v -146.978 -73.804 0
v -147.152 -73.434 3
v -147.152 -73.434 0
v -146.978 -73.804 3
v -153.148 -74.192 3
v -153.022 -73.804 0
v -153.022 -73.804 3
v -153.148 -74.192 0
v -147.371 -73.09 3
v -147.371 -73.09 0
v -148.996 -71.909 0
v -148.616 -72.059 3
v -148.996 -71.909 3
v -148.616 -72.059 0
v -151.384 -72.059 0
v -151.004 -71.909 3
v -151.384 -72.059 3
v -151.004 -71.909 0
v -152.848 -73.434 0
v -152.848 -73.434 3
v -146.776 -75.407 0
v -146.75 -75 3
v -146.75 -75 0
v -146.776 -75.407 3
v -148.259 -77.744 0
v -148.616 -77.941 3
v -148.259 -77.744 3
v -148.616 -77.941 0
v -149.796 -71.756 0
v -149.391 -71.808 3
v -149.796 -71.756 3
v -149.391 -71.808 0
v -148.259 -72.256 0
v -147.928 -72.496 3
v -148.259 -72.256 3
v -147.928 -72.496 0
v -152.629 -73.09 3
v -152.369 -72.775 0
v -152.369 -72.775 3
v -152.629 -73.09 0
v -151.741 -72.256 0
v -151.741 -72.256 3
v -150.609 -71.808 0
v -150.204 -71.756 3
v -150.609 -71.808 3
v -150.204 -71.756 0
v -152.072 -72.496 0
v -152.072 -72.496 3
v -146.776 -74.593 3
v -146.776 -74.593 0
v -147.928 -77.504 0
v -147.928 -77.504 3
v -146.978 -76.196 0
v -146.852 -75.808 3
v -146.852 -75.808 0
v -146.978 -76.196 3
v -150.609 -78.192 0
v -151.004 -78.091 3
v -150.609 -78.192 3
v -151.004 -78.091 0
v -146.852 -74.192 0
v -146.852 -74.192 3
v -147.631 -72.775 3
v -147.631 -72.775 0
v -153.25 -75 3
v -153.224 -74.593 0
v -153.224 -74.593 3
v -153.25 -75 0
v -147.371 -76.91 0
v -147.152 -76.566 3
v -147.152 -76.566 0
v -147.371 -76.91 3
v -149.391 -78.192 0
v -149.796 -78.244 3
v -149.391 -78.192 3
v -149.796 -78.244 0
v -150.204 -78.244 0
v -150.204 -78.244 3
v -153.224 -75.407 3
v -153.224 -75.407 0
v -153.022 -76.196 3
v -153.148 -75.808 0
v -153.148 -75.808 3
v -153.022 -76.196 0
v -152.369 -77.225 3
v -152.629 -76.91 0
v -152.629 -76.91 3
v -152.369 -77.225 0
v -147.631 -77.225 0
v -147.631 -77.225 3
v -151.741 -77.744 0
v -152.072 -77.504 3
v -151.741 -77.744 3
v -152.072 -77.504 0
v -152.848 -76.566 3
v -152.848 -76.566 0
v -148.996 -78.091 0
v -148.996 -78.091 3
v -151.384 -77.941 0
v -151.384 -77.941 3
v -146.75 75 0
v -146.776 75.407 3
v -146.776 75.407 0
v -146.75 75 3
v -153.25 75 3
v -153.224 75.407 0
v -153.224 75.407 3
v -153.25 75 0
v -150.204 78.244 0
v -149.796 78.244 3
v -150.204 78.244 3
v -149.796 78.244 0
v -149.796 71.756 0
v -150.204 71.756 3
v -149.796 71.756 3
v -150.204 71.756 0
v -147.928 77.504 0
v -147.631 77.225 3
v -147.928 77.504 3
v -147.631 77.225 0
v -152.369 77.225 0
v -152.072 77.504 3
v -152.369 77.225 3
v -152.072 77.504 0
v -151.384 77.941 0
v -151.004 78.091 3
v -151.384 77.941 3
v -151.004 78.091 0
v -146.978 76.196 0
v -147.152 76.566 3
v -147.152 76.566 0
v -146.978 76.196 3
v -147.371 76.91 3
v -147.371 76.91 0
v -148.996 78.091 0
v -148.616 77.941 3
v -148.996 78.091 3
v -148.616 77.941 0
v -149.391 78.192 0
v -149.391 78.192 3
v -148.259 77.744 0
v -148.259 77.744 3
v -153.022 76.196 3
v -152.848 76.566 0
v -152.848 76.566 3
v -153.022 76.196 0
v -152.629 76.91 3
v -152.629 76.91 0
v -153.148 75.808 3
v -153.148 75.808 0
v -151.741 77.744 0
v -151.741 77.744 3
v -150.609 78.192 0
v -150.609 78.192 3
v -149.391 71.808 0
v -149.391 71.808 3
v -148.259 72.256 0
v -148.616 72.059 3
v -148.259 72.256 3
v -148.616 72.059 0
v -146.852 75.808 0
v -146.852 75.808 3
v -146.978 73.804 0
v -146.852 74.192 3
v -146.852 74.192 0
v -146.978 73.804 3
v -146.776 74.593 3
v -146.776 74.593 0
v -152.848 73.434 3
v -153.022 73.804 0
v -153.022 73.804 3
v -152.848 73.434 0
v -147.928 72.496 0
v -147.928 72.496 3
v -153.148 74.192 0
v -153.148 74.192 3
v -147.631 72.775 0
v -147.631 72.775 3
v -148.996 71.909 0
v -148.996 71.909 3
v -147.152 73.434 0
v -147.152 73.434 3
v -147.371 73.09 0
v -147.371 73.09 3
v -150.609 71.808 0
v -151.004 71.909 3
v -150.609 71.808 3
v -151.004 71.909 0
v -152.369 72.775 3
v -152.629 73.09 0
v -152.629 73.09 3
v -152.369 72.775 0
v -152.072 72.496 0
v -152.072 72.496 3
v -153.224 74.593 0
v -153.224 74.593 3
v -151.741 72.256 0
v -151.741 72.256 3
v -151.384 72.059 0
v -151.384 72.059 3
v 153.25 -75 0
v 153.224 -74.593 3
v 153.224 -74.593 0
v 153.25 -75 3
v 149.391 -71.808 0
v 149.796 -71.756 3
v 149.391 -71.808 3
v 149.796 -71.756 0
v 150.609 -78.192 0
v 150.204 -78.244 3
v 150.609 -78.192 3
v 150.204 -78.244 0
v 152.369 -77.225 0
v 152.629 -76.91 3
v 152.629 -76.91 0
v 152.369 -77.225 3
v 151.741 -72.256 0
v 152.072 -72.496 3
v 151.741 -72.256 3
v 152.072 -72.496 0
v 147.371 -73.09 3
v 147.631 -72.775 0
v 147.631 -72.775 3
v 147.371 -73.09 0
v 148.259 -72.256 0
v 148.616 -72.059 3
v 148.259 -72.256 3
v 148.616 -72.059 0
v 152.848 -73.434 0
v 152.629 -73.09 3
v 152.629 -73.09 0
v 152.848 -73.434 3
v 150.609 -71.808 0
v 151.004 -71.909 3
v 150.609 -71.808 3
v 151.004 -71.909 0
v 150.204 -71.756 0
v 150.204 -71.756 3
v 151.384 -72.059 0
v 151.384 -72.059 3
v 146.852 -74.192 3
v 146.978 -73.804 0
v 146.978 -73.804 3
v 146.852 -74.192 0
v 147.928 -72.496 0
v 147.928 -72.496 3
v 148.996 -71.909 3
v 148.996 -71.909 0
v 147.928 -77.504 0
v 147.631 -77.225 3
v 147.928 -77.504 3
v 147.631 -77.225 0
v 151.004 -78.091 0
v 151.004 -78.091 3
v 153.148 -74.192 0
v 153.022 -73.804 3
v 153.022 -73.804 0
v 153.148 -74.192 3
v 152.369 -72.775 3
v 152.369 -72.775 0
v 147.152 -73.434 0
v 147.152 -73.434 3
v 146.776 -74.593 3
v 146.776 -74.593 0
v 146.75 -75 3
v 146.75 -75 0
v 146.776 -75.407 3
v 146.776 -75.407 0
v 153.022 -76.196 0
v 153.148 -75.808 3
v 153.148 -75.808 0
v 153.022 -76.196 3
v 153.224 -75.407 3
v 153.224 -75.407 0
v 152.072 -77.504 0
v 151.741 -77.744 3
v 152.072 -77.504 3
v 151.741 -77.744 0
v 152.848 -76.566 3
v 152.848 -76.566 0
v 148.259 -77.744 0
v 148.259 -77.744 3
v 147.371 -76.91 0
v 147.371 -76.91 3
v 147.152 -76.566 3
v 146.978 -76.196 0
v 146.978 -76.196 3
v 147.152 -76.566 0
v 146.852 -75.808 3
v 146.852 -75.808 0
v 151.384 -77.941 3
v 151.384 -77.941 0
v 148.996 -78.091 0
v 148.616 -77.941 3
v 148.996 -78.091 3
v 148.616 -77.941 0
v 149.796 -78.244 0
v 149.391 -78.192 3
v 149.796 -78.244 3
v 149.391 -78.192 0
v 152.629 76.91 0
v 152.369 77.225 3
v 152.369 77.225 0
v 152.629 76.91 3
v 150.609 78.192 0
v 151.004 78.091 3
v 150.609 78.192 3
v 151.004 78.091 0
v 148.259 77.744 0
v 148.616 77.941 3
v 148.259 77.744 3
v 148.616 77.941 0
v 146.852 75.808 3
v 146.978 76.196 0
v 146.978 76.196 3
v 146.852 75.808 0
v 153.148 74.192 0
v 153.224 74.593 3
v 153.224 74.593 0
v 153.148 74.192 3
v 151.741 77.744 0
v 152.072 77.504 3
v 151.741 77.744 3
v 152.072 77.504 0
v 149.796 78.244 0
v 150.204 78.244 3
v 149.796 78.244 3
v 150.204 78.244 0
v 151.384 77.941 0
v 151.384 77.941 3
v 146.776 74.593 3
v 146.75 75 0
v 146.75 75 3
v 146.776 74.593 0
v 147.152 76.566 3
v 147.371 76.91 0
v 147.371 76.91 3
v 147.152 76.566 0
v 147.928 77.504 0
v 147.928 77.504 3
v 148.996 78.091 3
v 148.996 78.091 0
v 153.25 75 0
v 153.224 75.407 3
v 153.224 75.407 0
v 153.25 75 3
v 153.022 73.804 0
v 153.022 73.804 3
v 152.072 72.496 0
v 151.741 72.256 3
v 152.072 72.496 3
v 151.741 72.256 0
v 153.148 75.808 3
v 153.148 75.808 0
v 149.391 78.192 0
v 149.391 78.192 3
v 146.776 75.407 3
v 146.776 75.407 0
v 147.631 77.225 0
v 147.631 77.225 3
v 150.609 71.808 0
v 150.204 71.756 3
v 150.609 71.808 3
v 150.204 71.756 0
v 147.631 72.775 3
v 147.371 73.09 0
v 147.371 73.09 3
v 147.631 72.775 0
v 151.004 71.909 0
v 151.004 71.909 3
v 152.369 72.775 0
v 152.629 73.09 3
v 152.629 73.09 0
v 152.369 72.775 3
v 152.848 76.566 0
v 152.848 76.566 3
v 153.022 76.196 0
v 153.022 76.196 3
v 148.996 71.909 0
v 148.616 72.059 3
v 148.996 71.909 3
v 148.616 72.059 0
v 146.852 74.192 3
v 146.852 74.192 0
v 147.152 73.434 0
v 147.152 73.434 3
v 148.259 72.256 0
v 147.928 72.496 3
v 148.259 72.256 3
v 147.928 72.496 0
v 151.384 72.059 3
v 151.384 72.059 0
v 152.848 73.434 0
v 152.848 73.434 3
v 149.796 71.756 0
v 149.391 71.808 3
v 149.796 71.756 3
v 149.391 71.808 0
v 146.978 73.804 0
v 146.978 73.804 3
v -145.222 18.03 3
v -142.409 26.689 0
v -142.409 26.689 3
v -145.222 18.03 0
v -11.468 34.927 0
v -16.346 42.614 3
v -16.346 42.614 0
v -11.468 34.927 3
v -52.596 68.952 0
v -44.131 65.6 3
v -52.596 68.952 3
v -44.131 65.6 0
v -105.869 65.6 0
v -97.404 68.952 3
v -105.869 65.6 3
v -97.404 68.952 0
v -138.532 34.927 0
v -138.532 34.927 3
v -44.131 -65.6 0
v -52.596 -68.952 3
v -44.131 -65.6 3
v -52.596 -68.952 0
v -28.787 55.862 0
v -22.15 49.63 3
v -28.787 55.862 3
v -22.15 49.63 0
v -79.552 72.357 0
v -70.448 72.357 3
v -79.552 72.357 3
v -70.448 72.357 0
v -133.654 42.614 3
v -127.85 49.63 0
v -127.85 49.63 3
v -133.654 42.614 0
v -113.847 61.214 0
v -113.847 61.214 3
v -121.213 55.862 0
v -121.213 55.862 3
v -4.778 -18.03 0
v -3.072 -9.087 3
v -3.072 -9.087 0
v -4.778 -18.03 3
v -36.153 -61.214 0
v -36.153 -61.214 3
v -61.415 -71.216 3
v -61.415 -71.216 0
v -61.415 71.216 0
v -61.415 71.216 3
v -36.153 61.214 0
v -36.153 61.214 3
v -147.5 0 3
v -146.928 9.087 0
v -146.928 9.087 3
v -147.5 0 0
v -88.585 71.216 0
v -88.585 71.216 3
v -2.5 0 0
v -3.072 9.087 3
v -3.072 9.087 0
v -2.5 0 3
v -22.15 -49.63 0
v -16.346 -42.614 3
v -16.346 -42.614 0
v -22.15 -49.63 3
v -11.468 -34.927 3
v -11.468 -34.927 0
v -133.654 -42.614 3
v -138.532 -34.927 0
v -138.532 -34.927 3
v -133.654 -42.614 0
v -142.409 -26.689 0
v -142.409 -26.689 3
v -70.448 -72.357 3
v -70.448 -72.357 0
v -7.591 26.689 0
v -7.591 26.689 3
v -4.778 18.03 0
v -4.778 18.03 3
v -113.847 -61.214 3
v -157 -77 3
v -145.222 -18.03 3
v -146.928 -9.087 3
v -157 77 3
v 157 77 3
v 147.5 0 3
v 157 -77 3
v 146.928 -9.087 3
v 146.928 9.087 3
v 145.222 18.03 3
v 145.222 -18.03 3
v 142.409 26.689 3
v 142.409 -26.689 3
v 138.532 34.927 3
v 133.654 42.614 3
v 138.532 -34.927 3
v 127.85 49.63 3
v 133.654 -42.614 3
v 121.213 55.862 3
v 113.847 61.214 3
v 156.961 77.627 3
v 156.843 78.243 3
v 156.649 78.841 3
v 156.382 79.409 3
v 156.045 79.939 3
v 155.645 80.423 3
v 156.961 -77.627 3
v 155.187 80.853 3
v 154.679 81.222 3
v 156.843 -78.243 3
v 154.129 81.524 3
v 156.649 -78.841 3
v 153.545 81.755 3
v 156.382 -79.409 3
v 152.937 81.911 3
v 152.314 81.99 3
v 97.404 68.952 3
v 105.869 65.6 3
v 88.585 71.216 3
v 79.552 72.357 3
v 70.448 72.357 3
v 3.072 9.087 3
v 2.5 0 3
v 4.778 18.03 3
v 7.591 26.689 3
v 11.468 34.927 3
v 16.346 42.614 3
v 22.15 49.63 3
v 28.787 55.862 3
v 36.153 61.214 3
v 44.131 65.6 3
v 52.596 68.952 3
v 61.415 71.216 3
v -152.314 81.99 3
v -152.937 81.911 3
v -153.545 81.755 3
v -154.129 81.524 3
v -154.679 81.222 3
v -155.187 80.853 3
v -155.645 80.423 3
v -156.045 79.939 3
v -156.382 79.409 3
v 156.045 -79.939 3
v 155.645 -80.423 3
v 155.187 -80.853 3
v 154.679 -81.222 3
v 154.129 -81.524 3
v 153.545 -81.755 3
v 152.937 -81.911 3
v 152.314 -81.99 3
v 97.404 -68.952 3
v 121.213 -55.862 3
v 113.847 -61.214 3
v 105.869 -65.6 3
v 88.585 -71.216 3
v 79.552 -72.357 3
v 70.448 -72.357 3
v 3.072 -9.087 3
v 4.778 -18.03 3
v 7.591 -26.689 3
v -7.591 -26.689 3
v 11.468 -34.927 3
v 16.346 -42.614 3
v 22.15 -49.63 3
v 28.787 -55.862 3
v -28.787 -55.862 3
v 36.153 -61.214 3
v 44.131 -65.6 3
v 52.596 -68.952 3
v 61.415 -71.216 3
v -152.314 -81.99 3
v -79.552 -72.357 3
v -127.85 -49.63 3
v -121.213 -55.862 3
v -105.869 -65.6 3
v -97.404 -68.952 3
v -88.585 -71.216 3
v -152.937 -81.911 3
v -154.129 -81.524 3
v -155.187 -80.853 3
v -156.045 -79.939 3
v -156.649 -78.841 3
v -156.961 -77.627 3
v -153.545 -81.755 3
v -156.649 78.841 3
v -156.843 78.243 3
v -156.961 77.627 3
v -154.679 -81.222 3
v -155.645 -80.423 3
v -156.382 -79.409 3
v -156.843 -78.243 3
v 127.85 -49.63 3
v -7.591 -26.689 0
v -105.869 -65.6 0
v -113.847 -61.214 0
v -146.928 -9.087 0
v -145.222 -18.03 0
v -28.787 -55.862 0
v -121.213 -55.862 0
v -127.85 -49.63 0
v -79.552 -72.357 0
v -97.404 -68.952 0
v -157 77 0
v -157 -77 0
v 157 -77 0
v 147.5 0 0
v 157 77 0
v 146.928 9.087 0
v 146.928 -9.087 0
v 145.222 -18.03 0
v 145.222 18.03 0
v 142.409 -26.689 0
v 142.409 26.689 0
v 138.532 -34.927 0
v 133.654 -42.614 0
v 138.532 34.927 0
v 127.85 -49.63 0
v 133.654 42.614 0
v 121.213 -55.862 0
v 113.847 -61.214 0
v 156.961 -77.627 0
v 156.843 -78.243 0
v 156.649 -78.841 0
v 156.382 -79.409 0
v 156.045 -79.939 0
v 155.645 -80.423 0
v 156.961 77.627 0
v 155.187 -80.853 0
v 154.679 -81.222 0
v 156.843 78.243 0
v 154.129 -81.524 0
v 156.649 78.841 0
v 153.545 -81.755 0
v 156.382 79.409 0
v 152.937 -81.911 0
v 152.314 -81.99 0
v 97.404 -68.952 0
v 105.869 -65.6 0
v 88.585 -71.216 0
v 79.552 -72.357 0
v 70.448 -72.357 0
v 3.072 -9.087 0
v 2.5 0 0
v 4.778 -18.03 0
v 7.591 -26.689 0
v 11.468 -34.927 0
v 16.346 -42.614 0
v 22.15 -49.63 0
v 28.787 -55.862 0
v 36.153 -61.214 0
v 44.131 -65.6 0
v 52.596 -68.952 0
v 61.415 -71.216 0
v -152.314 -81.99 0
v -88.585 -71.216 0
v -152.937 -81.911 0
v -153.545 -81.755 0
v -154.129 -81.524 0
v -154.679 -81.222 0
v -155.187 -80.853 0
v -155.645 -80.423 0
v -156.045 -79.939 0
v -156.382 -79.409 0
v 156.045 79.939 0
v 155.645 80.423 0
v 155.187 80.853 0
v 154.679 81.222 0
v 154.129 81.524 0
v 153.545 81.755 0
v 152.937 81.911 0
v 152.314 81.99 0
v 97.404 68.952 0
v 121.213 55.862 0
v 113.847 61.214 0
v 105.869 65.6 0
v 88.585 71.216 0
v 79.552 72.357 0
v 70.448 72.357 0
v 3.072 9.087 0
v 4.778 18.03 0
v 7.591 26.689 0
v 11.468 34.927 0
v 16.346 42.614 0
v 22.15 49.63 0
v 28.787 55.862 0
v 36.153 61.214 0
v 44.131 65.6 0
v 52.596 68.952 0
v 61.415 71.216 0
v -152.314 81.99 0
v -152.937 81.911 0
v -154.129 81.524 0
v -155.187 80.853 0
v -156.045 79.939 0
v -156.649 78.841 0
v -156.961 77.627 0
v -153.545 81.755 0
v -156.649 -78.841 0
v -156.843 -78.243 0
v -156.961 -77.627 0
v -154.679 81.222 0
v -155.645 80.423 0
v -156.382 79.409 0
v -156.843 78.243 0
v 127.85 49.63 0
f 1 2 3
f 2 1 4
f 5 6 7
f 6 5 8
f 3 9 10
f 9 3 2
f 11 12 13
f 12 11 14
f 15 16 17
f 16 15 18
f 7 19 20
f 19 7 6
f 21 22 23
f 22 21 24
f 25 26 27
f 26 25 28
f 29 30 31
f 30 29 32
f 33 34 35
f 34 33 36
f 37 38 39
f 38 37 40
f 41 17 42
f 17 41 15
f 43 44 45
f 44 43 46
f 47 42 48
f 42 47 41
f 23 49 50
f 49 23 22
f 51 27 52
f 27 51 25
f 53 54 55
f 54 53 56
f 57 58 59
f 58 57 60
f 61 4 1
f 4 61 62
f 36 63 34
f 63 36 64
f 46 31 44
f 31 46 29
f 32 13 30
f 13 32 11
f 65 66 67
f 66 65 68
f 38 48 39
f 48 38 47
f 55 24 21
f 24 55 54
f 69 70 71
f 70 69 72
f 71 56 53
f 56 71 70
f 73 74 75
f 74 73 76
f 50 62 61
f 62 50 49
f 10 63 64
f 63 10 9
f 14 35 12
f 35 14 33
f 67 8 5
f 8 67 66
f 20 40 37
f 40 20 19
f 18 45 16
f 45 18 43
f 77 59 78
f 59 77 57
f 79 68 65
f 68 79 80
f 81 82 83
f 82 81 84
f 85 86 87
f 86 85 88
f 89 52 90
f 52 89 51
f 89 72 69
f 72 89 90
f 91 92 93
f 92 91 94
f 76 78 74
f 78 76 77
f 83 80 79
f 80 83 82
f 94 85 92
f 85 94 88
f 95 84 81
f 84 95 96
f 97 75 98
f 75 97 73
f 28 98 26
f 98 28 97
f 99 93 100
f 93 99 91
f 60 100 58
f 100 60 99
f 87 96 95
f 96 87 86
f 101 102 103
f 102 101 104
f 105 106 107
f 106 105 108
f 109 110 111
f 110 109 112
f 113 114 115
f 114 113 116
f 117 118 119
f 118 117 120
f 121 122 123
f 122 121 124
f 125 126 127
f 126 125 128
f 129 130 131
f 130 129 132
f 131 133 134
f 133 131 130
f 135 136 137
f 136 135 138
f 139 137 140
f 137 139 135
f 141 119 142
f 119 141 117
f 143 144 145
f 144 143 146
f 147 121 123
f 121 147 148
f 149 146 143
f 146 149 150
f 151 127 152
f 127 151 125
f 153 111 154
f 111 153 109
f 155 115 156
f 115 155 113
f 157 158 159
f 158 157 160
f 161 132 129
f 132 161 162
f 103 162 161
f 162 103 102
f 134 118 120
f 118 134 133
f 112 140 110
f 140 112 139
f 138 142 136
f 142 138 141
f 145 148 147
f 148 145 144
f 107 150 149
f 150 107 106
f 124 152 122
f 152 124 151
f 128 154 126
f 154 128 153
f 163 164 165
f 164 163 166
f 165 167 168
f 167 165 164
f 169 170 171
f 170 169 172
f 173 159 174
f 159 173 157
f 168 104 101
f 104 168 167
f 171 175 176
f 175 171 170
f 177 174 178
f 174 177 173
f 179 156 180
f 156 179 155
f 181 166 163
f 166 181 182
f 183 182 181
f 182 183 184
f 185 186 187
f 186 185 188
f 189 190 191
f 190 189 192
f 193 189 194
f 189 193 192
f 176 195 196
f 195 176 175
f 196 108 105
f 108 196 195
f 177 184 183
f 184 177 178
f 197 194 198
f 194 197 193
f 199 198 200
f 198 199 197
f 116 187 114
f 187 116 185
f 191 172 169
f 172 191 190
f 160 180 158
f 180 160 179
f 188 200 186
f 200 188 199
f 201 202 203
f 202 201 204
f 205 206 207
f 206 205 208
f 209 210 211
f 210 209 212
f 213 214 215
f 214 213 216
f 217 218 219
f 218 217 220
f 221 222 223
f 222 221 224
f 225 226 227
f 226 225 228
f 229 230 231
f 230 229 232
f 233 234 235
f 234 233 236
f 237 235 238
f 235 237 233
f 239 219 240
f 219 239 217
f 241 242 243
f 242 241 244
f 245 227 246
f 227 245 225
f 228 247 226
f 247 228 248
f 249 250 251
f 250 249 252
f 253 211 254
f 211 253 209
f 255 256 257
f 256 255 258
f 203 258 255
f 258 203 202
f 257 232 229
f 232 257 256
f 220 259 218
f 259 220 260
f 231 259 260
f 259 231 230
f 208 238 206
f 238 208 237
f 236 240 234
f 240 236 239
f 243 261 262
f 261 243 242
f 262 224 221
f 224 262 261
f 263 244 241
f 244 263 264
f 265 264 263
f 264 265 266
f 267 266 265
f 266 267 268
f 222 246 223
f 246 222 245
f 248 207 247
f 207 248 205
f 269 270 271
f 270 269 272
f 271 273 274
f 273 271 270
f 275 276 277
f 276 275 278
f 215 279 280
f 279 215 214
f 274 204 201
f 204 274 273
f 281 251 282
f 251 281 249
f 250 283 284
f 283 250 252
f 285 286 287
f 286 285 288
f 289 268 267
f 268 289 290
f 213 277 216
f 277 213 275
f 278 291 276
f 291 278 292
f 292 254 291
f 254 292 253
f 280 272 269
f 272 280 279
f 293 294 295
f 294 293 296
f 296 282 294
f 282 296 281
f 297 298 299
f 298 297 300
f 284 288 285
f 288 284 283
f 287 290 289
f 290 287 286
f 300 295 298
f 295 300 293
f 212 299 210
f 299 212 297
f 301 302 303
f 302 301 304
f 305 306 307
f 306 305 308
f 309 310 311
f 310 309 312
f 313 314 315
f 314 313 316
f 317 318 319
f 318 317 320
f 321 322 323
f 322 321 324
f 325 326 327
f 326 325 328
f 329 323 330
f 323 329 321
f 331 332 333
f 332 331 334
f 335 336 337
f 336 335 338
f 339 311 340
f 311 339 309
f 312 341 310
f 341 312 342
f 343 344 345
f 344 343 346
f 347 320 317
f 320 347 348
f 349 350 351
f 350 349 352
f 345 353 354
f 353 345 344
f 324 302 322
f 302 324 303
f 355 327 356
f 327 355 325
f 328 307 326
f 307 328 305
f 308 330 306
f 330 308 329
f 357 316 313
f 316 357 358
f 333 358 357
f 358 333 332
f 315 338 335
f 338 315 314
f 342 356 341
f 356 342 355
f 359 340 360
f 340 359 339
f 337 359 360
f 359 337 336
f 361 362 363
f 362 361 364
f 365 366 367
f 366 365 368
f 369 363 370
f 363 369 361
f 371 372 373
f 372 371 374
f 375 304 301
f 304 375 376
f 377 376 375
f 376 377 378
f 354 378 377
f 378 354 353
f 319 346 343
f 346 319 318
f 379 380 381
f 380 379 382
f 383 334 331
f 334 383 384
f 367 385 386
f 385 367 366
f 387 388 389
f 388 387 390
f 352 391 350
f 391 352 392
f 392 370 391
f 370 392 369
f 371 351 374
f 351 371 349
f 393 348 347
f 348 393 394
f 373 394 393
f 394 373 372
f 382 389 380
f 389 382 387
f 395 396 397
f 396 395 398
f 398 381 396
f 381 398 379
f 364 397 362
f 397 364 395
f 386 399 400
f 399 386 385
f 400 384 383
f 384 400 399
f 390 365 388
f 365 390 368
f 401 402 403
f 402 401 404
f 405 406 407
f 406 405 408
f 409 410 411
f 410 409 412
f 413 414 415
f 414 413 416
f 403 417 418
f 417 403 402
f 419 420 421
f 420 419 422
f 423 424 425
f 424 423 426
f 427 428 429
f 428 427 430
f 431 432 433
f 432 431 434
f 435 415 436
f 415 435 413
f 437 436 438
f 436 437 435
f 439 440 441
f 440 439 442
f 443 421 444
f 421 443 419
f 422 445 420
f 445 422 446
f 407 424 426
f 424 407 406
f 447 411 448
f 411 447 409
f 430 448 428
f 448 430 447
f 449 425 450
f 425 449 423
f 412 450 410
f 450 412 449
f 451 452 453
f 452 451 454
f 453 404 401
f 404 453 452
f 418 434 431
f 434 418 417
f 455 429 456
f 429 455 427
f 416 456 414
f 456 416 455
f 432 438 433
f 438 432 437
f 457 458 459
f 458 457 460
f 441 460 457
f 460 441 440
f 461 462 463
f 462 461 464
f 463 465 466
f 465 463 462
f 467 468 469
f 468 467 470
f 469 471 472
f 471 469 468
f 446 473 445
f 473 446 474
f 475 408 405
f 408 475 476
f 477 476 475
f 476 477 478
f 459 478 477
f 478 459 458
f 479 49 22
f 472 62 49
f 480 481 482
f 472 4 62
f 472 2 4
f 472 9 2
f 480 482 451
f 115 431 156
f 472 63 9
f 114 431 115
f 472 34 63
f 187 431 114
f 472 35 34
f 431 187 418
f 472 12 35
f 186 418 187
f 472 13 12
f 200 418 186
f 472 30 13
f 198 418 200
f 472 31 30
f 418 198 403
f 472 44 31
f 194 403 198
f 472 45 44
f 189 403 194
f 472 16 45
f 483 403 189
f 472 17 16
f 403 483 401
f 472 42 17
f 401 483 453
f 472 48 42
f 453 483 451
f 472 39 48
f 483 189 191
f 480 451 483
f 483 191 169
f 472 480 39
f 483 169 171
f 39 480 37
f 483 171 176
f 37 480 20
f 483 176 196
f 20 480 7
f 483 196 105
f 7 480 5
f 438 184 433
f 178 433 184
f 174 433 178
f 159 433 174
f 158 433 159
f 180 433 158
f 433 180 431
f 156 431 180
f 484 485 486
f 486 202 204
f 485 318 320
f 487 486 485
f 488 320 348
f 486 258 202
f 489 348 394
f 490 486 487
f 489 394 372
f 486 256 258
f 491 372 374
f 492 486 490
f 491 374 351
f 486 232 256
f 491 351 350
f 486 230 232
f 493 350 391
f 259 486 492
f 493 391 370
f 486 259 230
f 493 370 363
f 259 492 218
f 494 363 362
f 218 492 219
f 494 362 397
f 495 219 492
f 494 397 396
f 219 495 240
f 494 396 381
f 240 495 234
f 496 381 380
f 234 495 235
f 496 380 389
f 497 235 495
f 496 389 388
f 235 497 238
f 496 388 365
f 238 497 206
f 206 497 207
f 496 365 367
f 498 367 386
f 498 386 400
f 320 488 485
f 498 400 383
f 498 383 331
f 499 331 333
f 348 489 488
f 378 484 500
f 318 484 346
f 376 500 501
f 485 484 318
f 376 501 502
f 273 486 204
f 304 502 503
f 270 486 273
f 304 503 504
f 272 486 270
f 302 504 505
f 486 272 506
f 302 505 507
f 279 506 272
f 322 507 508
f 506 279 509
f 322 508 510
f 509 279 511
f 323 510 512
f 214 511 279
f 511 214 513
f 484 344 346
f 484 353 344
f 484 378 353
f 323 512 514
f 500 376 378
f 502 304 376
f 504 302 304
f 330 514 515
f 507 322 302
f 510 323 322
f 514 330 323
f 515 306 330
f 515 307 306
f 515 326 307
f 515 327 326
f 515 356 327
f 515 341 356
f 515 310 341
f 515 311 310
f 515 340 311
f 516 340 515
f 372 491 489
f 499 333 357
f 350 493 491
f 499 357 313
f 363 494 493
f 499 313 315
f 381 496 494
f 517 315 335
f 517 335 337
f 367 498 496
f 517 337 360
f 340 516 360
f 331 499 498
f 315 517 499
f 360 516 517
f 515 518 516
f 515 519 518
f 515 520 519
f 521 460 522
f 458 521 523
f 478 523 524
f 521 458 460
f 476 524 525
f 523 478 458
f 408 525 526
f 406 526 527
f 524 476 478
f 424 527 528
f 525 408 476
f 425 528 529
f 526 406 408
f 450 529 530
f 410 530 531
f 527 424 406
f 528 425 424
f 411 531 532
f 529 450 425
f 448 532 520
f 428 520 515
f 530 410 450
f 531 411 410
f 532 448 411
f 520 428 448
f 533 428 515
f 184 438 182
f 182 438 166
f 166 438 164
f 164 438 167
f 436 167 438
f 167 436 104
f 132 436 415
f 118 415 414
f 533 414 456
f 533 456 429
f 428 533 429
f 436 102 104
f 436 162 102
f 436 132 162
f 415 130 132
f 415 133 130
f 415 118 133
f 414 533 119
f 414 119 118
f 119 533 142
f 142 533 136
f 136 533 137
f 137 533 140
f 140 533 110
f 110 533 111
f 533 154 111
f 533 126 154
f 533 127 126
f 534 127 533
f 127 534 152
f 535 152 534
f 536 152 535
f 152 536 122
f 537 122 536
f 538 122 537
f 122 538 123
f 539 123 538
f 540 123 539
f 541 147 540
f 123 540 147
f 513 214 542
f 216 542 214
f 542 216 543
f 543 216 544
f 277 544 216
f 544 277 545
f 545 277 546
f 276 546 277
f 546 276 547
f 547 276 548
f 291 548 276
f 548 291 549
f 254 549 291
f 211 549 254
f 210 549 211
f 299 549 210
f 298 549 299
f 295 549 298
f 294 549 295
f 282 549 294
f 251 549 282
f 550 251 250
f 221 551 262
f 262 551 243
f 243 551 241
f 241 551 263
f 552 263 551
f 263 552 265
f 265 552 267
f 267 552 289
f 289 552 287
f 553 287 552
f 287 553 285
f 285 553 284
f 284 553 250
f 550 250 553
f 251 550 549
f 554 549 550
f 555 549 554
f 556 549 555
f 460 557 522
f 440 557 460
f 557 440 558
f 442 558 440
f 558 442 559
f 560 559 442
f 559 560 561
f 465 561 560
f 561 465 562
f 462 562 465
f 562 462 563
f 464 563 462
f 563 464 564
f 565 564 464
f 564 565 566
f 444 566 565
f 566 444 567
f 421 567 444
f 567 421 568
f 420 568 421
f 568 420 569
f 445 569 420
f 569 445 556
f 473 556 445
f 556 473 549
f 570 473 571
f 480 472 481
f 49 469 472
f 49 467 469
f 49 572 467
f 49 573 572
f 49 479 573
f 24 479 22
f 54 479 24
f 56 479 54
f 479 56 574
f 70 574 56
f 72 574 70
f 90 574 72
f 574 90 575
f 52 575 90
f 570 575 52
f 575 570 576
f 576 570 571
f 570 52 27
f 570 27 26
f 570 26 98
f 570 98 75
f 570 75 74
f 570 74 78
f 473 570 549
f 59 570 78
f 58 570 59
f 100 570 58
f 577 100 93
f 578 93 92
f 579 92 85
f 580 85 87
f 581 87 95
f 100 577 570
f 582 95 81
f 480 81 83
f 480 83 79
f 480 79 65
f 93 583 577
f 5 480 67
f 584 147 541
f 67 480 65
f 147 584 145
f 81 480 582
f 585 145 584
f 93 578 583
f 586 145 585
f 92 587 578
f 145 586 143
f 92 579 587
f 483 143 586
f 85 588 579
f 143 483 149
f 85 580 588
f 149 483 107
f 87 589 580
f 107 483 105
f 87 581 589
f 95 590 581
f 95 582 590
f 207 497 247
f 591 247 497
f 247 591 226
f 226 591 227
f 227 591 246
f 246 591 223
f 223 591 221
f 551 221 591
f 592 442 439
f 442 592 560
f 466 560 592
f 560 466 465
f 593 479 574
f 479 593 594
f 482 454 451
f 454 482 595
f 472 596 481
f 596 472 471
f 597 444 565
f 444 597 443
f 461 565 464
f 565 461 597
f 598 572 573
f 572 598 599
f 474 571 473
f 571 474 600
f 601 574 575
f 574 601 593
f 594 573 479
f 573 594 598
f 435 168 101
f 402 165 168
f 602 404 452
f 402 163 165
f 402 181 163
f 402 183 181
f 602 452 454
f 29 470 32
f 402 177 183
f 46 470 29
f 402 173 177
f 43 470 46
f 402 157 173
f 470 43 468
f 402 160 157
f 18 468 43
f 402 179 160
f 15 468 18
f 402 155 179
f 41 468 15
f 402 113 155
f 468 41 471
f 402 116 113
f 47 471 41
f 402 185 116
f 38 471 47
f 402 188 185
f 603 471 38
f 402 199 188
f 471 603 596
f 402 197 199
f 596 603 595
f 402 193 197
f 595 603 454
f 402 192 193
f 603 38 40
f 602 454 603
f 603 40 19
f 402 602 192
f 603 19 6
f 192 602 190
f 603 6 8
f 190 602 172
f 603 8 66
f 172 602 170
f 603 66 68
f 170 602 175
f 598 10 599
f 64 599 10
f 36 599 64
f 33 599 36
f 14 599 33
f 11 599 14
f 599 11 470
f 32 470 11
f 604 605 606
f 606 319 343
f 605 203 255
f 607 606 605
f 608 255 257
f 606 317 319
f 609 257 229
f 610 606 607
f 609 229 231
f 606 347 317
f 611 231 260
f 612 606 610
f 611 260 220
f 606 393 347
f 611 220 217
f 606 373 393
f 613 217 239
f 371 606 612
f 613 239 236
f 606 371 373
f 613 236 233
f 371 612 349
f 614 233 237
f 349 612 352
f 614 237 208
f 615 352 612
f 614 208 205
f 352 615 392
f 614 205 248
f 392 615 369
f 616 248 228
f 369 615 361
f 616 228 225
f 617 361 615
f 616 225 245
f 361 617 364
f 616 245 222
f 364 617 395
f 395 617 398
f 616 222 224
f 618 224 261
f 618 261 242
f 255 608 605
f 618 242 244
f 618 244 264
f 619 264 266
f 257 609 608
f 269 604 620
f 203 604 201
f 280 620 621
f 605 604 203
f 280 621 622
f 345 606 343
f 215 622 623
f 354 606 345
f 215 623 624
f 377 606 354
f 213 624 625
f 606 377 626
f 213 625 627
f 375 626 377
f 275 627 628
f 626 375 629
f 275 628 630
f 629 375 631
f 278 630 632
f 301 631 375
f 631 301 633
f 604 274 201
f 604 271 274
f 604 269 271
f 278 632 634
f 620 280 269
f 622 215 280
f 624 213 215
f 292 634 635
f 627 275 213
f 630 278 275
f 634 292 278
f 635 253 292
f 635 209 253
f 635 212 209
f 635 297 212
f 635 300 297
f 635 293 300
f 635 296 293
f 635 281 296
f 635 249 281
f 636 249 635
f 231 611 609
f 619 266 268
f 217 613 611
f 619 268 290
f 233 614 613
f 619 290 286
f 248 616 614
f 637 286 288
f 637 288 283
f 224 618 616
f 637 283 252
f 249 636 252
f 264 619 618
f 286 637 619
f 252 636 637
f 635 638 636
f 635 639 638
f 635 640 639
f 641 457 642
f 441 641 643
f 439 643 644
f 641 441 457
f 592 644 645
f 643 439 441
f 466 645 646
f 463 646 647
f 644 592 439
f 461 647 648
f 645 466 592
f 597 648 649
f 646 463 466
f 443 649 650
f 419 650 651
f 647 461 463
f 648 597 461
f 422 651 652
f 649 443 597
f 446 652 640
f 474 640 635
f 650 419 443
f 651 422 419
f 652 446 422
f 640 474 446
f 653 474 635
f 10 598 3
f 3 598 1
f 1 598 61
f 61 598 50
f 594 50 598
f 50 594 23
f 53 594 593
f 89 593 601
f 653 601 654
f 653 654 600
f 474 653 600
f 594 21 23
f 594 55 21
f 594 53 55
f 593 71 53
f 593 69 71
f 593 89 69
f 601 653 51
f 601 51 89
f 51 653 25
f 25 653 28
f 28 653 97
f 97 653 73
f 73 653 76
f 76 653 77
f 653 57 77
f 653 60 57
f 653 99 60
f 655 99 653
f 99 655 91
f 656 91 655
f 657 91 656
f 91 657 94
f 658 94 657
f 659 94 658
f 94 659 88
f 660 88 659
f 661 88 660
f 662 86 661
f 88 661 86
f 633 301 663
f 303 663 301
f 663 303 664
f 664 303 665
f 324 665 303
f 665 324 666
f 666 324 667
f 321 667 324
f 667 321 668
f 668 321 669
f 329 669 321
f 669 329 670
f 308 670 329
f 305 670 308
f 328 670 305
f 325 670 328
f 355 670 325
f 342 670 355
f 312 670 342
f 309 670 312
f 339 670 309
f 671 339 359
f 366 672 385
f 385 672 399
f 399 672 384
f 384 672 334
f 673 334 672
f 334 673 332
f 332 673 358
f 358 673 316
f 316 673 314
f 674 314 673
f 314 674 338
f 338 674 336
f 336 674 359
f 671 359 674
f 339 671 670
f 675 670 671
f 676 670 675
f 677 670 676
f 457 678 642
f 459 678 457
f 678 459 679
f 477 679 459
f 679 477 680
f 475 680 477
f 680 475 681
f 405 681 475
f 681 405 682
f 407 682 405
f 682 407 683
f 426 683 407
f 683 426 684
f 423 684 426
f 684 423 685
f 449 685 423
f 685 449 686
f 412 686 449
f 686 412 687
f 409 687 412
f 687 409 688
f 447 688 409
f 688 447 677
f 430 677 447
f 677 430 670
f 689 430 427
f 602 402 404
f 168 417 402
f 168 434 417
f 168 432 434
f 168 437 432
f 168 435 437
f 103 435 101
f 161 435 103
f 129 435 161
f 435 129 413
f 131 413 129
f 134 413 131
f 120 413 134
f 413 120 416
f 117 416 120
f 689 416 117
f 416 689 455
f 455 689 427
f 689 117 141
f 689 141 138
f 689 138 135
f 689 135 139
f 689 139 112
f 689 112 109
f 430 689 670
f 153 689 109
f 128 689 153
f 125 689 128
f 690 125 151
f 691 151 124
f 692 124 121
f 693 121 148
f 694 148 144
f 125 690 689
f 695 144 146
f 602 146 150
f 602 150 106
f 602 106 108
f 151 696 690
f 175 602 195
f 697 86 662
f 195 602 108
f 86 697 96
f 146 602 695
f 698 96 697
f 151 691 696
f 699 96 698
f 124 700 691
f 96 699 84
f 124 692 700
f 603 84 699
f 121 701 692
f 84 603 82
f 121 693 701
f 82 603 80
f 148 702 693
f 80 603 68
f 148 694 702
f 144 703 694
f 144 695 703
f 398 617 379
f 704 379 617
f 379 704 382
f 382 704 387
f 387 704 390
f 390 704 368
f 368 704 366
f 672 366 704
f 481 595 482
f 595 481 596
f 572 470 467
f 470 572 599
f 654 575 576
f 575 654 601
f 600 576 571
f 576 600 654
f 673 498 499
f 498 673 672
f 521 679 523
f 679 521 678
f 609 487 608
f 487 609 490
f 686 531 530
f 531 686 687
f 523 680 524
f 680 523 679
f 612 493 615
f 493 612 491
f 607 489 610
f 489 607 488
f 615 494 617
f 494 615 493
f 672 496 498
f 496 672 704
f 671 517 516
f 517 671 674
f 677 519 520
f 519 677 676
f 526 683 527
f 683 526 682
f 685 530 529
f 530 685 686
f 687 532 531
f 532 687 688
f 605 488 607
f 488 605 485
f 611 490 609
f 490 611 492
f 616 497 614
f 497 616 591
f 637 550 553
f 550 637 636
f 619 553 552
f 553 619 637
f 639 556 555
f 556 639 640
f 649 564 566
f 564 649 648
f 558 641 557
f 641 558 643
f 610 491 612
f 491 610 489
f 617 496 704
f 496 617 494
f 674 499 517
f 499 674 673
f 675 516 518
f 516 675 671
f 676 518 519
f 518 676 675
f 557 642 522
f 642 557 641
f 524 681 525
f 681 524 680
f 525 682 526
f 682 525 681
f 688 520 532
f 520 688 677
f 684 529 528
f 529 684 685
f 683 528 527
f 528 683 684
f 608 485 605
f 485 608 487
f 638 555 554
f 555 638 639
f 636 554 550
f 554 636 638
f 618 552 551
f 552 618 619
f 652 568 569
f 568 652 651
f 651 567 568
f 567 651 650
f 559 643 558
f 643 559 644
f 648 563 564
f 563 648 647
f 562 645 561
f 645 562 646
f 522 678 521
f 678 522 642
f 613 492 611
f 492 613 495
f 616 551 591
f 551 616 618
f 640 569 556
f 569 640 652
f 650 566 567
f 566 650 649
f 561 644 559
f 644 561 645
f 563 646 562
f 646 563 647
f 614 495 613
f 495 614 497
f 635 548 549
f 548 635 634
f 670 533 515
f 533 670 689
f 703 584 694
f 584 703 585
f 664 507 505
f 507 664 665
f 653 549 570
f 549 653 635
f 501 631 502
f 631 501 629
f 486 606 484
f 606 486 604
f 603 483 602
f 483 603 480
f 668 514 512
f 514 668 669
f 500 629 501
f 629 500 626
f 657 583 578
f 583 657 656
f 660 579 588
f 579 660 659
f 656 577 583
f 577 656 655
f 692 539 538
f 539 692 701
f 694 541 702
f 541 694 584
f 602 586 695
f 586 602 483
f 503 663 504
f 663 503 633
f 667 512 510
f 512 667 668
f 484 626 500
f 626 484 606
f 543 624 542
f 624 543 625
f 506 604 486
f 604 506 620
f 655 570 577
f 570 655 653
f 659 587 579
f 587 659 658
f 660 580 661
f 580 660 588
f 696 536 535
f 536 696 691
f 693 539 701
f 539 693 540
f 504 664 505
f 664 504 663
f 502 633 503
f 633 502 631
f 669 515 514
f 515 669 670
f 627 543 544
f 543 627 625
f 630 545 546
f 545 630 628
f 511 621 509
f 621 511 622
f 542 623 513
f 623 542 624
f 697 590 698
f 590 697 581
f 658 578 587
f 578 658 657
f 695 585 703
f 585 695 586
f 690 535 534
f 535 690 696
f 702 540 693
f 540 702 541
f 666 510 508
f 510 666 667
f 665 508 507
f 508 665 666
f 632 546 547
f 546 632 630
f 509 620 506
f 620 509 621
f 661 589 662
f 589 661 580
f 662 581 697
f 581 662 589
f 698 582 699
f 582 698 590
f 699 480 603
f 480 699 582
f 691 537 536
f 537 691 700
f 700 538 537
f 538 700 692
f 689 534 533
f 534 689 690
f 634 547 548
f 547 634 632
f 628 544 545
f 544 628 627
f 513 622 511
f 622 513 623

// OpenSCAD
$fn = 50;


difference() {
	union() {
		hull() {
			translate(v = [-152.0000000000, 77.0000000000, 0]) {
				cylinder(h = 3, r = 5);
			}
			translate(v = [152.0000000000, 77.0000000000, 0]) {
				cylinder(h = 3, r = 5);
			}
			translate(v = [-152.0000000000, -77.0000000000, 0]) {
				cylinder(h = 3, r = 5);
			}
			translate(v = [152.0000000000, -77.0000000000, 0]) {
				cylinder(h = 3, r = 5);
			}
		}
	}
	union() {
		#translate(v = [-150.0000000000, -75.0000000000, -100.0000000000]) {
			cylinder(h = 200, r = 3.2500000000);
		}
		#translate(v = [-150.0000000000, 75.0000000000, -100.0000000000]) {
			cylinder(h = 200, r = 3.2500000000);
		}
		#translate(v = [150.0000000000, -75.0000000000, -100.0000000000]) {
			cylinder(h = 200, r = 3.2500000000);
		}
		#translate(v = [150.0000000000, 75.0000000000, -100.0000000000]) {
			cylinder(h = 200, r = 3.2500000000);
		}
		#translate(v = [-75.0000000000, 0, 0]) {
			cylinder(h = 3, r = 72.5000000000);
		}
		#translate(v = [75.0000000000, 0, 0]) {
			cylinder(h = 3, r = 72.5000000000);
		}
	}
}
